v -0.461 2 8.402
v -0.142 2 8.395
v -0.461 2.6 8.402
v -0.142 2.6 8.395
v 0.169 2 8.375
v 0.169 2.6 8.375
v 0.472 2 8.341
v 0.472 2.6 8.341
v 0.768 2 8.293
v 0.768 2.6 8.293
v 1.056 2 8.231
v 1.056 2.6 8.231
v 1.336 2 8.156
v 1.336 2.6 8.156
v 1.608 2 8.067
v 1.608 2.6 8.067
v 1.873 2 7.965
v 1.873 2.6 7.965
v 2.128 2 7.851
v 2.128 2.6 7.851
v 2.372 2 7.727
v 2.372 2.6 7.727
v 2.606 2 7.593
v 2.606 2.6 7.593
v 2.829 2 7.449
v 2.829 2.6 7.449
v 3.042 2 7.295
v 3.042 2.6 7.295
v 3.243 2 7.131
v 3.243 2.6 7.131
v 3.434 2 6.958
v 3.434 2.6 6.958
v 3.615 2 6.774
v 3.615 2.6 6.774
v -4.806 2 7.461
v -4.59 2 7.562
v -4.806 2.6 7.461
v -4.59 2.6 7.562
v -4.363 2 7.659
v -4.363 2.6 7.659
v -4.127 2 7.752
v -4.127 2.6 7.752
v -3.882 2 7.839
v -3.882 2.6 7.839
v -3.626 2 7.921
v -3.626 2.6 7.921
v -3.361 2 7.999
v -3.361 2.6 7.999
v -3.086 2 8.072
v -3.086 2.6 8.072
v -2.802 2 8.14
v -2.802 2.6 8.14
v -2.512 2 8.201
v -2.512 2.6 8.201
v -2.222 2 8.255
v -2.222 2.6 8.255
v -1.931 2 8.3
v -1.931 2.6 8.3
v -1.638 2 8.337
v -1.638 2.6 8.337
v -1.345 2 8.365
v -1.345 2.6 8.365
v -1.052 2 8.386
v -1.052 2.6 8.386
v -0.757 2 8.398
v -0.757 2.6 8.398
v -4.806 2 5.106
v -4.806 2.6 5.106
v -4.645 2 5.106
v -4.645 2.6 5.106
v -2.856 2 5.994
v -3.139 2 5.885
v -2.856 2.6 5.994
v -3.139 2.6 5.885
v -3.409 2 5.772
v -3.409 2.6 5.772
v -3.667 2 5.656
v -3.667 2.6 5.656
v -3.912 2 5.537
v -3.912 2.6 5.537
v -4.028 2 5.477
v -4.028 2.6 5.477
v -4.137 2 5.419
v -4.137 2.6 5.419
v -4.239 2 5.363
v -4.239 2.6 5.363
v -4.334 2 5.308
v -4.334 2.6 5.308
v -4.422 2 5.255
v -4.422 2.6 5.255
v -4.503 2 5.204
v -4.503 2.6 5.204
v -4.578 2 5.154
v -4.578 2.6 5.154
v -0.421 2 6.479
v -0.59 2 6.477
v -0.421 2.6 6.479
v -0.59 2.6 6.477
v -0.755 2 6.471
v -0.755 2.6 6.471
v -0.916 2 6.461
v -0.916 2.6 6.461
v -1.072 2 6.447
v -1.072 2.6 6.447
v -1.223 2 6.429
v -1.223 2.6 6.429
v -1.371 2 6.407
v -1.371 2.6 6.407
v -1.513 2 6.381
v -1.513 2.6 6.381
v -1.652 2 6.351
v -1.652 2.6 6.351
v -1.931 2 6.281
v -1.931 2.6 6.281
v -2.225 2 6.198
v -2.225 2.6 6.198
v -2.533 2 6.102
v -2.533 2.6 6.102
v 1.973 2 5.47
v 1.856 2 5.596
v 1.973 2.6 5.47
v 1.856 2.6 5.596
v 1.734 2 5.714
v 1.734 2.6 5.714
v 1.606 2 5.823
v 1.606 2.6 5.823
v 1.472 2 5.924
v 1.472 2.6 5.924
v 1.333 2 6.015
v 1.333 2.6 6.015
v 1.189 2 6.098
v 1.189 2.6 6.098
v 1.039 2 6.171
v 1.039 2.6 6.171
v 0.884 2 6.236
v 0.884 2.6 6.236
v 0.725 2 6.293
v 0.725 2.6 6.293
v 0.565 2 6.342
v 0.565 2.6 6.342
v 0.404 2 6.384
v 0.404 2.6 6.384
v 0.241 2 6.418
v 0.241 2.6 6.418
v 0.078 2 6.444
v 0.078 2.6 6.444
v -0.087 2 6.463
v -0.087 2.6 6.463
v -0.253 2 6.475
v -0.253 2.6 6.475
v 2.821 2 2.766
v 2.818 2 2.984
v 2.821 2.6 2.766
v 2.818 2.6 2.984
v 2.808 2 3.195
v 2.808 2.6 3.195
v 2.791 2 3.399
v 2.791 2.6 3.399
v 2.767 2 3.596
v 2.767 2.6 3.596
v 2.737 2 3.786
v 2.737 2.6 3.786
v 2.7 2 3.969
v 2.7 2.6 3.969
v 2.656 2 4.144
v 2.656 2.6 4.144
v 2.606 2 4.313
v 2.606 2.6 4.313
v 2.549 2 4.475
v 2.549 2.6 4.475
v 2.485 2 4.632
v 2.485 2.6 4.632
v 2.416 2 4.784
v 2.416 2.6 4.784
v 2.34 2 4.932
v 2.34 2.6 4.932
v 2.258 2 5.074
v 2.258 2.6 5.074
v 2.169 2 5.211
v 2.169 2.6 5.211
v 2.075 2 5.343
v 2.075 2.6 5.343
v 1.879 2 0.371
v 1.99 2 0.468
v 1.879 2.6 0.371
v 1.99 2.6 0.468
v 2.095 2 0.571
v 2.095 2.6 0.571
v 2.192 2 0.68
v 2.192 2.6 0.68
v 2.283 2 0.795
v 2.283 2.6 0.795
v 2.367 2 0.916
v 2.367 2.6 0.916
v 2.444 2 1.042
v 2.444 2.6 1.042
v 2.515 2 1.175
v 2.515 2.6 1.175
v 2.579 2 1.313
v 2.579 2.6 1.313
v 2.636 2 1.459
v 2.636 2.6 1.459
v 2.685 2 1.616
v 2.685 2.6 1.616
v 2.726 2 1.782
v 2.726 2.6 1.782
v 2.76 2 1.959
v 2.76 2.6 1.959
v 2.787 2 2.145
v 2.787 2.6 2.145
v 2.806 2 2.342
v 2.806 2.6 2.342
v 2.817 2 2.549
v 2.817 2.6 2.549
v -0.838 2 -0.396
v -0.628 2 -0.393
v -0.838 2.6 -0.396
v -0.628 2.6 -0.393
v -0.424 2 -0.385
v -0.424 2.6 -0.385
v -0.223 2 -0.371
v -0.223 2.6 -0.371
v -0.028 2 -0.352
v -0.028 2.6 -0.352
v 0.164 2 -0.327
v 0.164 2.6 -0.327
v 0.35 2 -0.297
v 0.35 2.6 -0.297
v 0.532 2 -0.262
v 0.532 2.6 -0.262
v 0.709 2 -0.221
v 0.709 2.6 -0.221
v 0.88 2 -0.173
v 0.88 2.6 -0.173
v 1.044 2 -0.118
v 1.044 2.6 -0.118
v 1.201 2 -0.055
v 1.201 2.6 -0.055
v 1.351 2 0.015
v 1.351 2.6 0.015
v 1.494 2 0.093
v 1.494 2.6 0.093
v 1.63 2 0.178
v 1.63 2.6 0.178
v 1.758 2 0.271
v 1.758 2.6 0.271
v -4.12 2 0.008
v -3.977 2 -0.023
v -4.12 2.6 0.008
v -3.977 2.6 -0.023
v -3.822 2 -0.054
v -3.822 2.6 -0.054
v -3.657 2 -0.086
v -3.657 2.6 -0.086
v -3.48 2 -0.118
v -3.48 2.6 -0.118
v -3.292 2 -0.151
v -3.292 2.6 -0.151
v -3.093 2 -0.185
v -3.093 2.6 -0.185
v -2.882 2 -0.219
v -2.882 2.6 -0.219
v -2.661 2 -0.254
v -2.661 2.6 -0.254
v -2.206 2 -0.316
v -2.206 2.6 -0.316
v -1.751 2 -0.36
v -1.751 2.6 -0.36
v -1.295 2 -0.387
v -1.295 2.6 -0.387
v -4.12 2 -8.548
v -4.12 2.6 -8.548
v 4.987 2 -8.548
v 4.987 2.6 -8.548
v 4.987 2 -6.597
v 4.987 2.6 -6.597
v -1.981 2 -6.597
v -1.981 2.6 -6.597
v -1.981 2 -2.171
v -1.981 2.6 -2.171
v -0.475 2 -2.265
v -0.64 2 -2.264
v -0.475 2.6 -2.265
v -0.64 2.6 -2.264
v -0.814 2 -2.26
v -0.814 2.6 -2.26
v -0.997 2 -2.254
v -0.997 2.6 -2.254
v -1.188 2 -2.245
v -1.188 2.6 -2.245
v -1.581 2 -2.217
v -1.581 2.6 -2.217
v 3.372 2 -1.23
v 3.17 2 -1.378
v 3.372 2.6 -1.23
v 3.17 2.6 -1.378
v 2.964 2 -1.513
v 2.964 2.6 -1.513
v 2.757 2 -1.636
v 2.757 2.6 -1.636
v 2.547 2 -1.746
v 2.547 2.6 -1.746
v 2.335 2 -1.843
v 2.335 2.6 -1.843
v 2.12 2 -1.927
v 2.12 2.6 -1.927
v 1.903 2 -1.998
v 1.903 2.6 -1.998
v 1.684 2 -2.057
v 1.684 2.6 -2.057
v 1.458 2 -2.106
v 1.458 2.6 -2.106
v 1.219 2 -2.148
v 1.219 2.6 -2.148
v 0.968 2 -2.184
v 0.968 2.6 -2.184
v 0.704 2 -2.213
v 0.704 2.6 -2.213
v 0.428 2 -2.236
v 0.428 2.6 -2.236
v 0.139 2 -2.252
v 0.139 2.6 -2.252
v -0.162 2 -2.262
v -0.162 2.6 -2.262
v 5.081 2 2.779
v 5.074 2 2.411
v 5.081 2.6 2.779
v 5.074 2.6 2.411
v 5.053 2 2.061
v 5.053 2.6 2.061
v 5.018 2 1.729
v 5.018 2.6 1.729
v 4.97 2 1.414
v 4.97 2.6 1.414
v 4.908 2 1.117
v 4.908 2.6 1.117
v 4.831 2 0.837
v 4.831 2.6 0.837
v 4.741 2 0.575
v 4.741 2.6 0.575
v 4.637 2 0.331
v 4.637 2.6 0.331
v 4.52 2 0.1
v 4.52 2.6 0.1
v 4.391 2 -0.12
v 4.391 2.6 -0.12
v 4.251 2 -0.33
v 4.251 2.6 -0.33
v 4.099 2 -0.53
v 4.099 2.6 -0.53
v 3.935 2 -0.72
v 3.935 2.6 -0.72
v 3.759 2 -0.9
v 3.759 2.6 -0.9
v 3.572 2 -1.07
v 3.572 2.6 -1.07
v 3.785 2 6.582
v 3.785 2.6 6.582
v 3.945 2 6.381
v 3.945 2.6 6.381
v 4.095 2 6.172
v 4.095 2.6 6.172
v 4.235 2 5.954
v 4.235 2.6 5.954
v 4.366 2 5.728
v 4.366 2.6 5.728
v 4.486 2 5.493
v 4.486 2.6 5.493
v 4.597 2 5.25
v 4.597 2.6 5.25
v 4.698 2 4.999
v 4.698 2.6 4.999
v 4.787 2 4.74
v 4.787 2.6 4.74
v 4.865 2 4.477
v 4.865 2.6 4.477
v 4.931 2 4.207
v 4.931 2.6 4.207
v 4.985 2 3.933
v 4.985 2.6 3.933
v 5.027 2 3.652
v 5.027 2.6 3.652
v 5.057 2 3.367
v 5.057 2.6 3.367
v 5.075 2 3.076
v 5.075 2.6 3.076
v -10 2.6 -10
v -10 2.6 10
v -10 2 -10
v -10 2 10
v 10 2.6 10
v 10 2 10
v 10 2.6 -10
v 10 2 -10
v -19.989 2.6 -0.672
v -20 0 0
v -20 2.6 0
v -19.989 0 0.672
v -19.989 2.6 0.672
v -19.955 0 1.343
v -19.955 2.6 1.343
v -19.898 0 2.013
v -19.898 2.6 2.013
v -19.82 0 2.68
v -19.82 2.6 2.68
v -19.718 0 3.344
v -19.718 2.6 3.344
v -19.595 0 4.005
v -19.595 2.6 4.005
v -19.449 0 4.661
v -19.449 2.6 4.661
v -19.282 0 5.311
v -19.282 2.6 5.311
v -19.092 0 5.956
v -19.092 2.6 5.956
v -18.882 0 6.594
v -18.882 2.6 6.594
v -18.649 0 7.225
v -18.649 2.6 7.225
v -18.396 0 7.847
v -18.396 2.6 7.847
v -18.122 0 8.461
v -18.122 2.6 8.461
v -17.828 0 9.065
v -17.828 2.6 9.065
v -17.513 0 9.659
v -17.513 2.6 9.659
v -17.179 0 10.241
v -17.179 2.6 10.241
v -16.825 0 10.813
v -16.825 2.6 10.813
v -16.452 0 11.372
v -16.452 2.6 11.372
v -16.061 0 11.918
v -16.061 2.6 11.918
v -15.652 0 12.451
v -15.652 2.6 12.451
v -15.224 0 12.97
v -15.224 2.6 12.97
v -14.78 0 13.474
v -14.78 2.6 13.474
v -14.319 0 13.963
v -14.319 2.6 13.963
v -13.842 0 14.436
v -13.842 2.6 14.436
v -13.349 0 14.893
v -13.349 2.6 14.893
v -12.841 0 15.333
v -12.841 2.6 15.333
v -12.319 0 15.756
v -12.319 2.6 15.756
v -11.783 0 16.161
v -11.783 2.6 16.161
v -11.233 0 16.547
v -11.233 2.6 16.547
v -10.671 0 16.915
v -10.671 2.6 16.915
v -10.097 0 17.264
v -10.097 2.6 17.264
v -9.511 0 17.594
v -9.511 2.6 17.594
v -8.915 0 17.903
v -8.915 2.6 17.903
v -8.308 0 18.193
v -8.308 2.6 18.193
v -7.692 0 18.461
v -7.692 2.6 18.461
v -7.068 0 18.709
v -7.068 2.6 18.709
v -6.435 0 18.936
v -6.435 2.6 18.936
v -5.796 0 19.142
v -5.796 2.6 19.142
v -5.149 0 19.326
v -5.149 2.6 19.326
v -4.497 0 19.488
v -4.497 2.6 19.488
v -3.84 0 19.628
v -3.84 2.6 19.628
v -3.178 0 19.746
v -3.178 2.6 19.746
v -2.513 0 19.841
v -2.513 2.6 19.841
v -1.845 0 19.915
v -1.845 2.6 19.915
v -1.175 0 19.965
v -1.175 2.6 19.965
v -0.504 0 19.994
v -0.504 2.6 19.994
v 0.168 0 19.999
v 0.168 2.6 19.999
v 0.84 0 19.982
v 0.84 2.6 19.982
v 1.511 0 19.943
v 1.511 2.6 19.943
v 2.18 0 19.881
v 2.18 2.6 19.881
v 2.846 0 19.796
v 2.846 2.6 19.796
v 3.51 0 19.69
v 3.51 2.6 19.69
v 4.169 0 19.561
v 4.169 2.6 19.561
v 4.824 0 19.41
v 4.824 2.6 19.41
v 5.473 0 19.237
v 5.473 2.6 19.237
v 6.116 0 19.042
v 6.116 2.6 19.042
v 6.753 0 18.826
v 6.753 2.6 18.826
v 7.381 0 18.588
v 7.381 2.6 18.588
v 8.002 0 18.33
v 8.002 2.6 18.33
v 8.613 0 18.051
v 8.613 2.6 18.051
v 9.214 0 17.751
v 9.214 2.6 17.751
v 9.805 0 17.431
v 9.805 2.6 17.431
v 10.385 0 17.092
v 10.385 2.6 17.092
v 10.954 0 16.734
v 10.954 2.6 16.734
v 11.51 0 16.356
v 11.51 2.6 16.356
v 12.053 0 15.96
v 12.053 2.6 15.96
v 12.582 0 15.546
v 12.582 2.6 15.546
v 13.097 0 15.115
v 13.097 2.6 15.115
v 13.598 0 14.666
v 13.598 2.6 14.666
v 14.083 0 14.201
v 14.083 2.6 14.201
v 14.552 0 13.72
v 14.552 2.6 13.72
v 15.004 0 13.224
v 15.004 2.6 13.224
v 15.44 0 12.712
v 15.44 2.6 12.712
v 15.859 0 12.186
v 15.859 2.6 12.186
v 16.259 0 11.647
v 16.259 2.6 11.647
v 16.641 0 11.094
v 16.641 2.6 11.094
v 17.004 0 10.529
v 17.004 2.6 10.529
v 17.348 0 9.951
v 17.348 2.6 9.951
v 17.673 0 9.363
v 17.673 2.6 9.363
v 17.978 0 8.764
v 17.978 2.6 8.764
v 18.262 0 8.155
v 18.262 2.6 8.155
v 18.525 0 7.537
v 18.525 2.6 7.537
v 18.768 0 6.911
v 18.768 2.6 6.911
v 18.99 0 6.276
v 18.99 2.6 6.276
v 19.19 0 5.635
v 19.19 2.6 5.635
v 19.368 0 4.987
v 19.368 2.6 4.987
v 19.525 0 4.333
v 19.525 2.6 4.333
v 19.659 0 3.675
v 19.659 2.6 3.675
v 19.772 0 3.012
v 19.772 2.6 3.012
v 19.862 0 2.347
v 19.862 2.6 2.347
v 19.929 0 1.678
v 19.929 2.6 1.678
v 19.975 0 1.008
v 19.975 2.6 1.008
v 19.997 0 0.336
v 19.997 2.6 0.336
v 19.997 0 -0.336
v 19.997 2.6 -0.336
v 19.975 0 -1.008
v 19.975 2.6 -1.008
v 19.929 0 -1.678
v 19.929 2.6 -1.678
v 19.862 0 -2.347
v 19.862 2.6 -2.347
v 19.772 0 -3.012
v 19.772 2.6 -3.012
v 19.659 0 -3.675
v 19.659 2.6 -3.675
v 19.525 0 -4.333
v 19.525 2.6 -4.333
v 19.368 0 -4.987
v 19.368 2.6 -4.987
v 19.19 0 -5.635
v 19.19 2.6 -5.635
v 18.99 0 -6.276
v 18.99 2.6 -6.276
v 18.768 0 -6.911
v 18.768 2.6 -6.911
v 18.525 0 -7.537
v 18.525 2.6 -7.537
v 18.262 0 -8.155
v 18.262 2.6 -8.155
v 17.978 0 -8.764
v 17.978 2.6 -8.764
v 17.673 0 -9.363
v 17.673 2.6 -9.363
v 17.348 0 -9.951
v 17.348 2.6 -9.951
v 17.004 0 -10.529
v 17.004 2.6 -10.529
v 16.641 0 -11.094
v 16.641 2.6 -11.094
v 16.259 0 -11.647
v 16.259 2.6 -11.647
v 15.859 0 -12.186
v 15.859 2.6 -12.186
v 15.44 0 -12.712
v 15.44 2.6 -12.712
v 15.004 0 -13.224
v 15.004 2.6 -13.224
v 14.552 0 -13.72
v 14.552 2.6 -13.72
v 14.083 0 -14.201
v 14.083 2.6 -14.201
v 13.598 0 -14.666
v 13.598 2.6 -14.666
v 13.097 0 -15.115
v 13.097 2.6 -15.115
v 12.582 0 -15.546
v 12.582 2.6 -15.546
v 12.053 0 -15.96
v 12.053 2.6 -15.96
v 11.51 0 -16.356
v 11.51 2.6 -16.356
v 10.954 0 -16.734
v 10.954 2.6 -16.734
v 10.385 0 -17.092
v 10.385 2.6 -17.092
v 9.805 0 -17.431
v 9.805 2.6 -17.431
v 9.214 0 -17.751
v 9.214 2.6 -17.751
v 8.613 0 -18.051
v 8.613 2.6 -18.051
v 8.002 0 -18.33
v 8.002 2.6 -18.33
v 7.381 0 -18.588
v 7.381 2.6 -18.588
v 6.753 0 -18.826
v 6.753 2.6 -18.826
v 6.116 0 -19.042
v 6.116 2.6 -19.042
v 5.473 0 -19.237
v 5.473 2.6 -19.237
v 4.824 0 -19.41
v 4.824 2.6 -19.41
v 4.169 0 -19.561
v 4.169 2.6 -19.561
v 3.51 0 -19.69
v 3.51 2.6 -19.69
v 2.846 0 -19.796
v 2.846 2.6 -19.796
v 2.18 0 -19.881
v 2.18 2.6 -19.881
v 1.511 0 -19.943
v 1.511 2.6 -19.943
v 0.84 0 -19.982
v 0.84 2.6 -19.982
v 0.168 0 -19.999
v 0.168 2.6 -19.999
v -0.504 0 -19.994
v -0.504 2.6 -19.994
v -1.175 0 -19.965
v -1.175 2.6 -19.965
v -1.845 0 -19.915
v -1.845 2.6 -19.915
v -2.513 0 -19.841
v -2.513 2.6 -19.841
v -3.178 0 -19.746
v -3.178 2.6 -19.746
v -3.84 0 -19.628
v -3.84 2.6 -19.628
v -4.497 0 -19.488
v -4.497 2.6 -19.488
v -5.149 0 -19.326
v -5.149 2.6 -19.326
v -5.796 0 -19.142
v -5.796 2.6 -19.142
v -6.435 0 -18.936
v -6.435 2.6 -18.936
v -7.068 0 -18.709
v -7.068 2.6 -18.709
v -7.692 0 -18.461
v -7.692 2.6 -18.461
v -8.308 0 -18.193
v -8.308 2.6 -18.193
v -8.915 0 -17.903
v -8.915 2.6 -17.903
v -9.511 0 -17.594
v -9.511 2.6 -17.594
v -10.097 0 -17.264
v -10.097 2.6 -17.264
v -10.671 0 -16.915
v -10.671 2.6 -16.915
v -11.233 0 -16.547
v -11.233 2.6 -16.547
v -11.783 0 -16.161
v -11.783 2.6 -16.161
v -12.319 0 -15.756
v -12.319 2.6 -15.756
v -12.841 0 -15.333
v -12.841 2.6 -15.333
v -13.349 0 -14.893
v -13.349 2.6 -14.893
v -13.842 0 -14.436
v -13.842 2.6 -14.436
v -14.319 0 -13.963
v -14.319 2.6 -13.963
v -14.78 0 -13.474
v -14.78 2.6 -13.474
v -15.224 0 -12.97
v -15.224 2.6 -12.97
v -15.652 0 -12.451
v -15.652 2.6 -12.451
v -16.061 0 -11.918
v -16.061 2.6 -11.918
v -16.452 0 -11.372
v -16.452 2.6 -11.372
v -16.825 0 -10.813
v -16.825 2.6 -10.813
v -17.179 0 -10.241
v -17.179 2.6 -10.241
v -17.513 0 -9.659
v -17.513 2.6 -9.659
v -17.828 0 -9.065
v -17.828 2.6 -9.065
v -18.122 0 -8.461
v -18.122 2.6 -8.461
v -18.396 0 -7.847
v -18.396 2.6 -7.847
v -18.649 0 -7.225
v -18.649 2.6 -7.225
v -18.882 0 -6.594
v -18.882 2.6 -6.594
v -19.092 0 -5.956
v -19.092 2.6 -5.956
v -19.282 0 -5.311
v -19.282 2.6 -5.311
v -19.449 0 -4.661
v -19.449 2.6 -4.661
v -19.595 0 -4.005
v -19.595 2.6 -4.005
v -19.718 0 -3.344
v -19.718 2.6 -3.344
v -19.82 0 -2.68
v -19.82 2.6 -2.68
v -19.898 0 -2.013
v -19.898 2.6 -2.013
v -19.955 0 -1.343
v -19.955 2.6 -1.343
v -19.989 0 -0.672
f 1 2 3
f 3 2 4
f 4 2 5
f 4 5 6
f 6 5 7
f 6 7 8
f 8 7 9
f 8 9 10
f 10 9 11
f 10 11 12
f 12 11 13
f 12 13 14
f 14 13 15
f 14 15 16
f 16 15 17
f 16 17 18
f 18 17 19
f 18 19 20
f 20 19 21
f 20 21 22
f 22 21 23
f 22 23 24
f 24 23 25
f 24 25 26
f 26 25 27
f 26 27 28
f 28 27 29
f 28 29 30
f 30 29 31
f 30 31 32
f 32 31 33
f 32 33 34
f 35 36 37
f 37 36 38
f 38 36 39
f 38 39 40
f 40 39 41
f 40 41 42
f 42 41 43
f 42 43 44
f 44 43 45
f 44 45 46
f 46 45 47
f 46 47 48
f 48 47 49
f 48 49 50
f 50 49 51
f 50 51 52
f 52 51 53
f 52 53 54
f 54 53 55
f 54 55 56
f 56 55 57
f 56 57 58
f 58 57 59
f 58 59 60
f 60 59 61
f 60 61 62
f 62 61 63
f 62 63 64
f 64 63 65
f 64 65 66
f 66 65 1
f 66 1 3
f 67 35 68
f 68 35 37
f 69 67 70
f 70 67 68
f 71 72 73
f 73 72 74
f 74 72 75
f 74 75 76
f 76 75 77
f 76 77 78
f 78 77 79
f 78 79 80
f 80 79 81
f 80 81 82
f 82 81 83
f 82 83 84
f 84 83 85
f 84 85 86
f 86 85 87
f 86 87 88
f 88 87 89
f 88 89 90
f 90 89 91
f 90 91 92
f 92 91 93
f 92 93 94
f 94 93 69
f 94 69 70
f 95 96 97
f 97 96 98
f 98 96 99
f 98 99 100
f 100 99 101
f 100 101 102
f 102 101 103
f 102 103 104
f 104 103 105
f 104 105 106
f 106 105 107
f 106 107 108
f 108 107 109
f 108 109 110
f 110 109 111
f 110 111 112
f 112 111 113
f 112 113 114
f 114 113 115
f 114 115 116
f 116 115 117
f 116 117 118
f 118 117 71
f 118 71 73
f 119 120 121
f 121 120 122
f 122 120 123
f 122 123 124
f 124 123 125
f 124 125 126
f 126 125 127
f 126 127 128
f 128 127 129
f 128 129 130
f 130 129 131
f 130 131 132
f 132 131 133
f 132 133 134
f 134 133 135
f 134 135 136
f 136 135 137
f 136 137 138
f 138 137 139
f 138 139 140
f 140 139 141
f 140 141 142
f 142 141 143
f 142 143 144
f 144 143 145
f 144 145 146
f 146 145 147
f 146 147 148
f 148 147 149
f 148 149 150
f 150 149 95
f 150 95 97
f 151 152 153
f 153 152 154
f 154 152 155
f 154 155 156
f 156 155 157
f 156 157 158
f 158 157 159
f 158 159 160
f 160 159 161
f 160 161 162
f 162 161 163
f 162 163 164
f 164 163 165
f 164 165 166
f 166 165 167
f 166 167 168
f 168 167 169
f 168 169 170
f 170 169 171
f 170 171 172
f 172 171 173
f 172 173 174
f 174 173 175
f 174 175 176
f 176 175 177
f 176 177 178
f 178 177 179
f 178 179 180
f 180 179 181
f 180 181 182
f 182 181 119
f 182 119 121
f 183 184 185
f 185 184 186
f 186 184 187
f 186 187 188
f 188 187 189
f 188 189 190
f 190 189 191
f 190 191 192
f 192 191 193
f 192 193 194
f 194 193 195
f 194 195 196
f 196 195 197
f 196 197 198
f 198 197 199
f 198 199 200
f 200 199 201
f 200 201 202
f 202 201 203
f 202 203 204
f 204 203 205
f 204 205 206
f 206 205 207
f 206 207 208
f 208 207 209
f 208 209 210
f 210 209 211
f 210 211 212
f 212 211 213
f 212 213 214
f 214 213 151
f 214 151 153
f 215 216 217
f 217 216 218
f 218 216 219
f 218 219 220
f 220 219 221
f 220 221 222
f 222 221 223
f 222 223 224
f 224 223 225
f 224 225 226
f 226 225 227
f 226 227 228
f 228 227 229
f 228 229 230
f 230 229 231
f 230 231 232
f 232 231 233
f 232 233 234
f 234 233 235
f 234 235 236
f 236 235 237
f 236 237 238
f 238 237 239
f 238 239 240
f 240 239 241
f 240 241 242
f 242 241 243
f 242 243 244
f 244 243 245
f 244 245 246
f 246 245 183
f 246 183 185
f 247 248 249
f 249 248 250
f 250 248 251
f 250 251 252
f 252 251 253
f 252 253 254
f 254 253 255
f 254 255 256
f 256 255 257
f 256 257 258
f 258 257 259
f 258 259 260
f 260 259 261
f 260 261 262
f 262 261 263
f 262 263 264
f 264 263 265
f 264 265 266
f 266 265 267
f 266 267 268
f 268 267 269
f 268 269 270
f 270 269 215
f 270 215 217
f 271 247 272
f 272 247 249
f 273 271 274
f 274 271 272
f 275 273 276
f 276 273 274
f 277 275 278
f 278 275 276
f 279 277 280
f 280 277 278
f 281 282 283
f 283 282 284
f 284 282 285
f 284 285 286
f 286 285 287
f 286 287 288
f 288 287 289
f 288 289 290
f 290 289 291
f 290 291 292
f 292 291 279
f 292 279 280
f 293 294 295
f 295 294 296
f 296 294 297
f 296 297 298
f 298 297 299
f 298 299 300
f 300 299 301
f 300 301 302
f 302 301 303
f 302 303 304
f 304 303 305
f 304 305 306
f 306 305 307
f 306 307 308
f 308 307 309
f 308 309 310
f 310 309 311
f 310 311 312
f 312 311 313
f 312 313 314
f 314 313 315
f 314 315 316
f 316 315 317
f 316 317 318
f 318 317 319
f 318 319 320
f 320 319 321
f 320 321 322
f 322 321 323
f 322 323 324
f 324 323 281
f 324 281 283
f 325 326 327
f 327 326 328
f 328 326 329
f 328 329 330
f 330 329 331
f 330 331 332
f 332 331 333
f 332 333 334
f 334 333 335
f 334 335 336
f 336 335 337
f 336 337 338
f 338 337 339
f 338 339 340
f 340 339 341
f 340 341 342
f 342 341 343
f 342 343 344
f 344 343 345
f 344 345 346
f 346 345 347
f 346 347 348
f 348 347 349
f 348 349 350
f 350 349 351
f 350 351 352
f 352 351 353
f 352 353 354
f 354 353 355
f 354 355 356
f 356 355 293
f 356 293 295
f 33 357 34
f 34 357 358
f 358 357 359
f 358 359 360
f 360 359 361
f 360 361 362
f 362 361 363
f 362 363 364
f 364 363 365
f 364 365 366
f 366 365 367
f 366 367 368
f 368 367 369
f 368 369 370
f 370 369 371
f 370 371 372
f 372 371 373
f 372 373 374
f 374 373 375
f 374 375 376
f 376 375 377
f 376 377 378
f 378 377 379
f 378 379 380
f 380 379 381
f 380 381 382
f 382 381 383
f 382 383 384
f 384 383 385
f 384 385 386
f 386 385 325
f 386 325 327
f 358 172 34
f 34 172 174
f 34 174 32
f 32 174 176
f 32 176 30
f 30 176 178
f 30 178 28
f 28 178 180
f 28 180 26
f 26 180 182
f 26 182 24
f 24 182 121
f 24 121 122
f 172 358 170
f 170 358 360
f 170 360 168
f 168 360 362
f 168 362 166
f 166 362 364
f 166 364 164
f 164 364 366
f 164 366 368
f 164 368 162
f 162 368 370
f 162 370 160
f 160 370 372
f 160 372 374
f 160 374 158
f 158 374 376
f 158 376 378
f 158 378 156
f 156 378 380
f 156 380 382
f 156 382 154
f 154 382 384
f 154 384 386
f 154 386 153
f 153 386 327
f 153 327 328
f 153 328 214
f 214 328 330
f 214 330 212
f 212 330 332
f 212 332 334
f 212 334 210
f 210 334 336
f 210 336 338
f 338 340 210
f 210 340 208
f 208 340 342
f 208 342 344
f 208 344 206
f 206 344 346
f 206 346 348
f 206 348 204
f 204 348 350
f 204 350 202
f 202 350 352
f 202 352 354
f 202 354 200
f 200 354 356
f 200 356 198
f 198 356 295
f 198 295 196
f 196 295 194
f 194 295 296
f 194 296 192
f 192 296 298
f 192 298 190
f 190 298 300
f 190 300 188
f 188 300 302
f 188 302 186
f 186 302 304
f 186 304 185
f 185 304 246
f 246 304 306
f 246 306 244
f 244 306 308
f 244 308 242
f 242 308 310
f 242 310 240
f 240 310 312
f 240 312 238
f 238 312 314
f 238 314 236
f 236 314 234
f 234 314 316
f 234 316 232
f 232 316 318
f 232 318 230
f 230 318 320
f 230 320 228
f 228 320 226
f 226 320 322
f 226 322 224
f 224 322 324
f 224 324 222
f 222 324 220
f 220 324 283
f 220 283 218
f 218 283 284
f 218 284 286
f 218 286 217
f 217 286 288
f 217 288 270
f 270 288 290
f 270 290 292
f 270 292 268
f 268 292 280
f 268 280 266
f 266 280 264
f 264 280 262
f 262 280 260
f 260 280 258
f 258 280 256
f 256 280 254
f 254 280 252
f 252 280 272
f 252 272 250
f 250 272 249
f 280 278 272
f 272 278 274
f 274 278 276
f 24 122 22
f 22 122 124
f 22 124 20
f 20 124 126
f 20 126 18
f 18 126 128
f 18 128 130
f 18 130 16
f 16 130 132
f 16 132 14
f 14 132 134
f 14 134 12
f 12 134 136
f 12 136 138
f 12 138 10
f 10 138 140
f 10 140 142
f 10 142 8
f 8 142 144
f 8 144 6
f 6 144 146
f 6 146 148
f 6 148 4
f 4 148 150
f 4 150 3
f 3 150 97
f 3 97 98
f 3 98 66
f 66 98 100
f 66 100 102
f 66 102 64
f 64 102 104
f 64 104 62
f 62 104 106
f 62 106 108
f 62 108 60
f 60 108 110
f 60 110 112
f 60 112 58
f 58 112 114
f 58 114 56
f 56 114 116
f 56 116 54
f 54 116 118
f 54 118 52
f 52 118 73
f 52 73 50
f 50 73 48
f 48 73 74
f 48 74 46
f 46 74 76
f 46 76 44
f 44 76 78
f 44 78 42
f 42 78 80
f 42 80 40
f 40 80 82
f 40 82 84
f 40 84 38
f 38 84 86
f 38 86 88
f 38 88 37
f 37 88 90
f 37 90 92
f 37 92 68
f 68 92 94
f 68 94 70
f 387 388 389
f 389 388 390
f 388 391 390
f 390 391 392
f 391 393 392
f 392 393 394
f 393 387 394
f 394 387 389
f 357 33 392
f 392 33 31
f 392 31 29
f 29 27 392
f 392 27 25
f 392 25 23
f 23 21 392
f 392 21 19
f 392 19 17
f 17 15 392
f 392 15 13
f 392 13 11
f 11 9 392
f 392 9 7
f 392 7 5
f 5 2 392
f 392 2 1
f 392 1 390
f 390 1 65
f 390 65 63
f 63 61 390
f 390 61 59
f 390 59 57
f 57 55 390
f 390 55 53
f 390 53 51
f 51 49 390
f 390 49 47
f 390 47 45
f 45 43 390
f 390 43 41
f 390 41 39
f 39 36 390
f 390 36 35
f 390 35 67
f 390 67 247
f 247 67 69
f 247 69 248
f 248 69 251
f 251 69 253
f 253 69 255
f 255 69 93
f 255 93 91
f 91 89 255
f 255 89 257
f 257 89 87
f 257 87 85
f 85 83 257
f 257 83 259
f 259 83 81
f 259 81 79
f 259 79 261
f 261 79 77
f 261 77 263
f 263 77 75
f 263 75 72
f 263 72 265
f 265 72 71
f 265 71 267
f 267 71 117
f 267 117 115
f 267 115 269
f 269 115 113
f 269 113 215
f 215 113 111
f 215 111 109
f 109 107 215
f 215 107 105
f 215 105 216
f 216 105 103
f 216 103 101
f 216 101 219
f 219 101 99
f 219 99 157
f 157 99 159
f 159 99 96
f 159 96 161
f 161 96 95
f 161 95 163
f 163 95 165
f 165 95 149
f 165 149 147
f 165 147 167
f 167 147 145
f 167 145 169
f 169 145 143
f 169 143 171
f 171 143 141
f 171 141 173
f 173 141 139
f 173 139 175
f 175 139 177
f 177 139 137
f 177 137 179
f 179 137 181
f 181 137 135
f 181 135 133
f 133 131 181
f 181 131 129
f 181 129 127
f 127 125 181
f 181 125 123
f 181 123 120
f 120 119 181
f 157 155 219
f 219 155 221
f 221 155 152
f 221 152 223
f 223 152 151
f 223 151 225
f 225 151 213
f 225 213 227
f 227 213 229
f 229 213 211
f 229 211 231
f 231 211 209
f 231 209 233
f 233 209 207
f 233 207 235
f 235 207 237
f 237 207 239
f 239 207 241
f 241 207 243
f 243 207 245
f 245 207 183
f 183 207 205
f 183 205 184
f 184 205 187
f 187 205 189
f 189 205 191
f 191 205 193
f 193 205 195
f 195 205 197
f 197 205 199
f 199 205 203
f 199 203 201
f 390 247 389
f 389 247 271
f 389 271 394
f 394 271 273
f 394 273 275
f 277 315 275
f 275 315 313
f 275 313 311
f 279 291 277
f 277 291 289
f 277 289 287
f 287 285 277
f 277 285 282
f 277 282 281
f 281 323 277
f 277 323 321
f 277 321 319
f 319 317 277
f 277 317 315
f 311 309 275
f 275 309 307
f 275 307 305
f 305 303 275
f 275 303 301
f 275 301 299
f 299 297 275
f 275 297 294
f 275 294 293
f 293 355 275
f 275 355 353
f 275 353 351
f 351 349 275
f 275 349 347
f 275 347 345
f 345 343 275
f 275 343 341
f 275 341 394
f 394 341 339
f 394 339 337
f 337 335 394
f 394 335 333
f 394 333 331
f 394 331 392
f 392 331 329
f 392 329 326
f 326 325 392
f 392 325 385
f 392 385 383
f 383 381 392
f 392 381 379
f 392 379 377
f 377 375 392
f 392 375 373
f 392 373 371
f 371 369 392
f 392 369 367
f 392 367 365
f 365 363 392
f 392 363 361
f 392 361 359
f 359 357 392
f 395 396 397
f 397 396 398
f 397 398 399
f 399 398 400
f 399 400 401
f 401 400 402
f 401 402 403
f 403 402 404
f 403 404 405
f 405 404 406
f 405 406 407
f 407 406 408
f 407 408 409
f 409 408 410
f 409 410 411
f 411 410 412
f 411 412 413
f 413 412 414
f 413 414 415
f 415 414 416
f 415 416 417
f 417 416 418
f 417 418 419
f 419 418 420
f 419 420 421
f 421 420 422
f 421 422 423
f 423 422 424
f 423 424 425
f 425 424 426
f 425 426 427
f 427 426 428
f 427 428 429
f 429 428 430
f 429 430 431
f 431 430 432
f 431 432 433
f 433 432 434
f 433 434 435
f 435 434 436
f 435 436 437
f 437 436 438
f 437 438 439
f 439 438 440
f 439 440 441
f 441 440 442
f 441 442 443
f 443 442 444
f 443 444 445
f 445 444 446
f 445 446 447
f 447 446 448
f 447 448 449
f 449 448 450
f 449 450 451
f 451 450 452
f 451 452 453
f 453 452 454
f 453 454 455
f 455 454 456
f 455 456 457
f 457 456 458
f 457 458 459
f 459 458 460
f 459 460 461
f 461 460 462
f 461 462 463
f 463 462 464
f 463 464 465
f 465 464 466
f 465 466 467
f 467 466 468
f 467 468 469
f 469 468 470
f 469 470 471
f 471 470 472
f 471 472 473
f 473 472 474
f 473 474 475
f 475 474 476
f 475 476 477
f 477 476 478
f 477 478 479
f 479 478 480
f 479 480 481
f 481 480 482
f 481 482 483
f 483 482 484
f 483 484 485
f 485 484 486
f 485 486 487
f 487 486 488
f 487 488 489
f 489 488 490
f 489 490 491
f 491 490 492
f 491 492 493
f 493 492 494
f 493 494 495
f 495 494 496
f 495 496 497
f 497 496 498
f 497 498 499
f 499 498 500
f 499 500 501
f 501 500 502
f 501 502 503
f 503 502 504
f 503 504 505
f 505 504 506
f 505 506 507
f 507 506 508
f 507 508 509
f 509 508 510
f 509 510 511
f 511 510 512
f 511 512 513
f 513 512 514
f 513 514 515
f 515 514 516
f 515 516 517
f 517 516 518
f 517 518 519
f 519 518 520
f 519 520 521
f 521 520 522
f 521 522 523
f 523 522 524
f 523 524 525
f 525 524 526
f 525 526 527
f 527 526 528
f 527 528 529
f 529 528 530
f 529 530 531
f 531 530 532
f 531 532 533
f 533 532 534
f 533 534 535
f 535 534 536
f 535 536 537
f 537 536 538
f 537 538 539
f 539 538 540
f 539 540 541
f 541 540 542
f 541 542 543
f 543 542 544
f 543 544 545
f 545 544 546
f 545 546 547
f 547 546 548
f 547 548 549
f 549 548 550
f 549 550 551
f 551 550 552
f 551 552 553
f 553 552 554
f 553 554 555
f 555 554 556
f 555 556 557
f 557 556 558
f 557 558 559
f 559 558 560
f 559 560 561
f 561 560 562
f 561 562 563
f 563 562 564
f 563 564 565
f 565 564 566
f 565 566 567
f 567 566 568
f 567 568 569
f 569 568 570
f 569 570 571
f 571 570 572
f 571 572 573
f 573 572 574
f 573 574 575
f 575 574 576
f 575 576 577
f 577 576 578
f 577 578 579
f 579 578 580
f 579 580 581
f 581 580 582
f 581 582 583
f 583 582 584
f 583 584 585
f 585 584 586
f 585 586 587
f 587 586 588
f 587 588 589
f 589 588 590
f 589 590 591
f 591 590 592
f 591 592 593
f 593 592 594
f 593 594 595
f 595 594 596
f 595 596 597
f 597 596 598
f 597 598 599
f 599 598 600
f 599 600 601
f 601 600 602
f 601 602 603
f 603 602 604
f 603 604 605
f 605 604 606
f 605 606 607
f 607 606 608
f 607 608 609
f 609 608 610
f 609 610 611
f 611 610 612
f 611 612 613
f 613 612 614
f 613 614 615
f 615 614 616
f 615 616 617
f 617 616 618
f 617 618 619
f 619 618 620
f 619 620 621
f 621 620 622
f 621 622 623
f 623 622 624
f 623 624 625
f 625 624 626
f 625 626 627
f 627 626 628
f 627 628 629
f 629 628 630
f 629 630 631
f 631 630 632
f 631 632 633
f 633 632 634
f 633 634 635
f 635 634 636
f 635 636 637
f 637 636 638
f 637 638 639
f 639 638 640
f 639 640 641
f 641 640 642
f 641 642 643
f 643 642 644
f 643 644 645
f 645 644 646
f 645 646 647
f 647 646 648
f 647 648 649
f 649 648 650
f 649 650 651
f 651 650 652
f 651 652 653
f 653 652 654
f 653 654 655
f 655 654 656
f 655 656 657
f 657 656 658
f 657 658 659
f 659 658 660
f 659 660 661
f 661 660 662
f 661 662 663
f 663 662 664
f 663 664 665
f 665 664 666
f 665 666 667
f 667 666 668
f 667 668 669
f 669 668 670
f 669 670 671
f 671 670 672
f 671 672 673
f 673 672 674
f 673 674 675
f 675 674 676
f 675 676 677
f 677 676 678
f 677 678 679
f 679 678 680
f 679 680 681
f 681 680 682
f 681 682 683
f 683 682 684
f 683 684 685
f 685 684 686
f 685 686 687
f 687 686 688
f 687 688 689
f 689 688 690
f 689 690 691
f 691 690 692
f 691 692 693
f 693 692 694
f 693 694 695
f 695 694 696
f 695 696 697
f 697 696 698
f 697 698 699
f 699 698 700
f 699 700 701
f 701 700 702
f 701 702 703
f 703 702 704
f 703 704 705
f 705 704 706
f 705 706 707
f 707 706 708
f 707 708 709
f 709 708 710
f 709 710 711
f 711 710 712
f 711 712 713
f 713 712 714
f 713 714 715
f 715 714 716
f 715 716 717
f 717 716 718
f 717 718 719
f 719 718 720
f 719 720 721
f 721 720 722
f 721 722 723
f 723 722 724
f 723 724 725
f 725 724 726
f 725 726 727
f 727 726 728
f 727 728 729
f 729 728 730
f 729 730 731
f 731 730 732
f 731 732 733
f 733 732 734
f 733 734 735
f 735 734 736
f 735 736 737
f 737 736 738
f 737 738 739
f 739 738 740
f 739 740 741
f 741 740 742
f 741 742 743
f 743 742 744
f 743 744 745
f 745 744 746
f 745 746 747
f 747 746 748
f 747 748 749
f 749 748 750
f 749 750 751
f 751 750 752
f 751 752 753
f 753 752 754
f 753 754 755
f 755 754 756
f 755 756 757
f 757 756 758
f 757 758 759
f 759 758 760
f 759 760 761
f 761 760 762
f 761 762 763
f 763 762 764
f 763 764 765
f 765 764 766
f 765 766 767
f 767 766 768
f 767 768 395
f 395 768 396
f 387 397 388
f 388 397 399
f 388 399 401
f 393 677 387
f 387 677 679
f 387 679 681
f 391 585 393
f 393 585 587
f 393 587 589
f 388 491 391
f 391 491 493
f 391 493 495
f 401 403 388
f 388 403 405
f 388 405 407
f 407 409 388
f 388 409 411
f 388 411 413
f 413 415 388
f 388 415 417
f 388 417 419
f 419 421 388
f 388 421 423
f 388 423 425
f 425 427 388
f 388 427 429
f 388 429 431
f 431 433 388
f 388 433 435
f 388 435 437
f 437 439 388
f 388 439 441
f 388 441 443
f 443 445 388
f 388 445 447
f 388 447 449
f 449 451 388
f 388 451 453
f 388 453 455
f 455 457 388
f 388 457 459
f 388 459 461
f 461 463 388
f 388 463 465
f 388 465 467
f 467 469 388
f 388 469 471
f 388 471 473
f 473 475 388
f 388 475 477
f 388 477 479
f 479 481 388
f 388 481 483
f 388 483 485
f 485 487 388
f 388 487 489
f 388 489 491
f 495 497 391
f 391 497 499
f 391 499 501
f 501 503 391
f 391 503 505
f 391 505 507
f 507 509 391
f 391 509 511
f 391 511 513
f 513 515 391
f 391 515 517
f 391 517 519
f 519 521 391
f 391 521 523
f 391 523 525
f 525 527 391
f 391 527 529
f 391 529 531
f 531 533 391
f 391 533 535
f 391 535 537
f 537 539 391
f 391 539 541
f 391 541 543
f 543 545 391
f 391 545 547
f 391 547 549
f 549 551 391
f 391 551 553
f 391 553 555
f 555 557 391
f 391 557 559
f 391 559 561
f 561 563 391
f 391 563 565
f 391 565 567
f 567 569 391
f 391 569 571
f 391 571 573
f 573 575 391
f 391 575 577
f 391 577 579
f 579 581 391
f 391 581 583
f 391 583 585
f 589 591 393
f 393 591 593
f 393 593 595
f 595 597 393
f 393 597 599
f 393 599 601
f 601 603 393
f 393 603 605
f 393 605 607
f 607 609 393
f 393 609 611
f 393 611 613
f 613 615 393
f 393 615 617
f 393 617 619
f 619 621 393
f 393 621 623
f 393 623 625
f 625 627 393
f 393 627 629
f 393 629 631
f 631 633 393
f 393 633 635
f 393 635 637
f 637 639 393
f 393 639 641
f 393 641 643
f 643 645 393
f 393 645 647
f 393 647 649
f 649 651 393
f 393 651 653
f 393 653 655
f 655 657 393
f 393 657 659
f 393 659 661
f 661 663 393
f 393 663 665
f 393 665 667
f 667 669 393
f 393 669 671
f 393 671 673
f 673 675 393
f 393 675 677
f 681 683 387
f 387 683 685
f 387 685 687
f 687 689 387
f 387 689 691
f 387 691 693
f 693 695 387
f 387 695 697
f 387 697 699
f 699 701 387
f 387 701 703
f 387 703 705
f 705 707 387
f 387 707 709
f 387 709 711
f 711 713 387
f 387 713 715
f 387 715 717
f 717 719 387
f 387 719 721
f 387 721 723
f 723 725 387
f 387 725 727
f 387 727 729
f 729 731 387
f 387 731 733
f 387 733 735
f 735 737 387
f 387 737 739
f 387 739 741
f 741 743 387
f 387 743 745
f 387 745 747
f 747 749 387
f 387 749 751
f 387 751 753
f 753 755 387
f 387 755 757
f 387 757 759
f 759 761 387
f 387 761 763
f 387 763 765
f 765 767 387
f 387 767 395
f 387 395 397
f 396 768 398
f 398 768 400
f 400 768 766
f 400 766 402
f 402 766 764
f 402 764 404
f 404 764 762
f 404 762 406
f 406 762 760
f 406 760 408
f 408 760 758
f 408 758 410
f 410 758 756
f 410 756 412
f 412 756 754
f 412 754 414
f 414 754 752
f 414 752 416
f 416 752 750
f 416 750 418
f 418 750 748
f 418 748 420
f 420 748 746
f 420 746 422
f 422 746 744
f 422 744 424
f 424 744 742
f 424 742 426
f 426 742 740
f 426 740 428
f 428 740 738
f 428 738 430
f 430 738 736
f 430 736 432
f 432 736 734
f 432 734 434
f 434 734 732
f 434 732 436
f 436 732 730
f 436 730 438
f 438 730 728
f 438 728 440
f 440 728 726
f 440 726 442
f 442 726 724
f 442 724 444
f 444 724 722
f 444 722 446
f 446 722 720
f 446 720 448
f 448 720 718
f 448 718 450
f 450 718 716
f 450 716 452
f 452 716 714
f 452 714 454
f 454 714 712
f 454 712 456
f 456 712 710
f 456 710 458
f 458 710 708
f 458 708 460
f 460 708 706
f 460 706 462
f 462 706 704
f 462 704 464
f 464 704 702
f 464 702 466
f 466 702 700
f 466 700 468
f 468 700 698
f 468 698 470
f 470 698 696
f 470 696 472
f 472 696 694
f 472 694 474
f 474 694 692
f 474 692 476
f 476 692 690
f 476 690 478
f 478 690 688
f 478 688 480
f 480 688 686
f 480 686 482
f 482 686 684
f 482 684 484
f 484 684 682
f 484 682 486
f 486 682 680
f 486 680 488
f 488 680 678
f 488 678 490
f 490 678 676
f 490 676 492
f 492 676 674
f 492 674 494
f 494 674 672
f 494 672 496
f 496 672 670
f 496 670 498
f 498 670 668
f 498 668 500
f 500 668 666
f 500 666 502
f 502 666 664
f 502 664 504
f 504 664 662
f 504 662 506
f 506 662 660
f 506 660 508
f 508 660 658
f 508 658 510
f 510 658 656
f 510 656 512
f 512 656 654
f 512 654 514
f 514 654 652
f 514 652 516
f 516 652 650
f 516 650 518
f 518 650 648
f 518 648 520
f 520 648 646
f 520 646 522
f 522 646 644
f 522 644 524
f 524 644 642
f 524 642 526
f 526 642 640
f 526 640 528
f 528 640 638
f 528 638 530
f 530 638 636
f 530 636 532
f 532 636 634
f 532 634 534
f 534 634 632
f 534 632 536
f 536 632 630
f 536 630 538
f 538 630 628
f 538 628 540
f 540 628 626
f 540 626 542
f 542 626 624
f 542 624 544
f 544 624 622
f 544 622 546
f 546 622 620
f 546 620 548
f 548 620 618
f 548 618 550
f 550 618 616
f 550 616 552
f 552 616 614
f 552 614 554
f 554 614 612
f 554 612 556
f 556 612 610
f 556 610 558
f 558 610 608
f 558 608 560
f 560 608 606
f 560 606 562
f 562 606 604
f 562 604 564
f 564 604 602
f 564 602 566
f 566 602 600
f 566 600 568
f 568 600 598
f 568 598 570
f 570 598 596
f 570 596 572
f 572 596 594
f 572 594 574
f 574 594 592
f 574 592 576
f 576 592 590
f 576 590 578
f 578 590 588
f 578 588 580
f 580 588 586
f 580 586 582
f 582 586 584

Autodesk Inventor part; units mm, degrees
ref_plane "YZ Plane" through (0, 0, 0) normal (1, 0, 0) x (0, 1, 0)
ref_plane "XZ Plane" through (0, 0, 0) normal (0, 1, 0) x (-1, 0, 0)
ref_plane "XY Plane" through (0, 0, 0) normal (0, 0, 1) x (1, 0, 0)
sketch "Sketch1" plane through (0, 0, 0) normal (0, 1, 0) x (-1, 0, 0)
  circle A0 centre (0, 0) radius 20
  dimension "d0" = 40
extrude "Extrusion1" add sketch "Sketch1" along normal blind 2.6
sketch "Sketch2" plane through (0, 2.6, 0) normal (0, 1, 0) x (1, 0, 0)
  line L0 (10, -10) -> (-10, -10)
  line L1 (-10, -10) -> (-10, 10)
  line L2 (-10, 10) -> (10, 10)
  line L3 (10, 10) -> (10, -10)
  line L4 (10, -10) -> (-10, 10) construction
  line L5 (-10, -10) -> (10, 10) construction
  point P0 (0, 0)
  dimension "d3" = 20
  dimension "d4" = 20
extrude "Extrusion2" cut sketch "Sketch2" against normal blind 0.6
sketch "Sketch4" plane through (0, 2, 0) normal (0, 1, 0) x (1, 0, 0)
  line L0 (-6.192, 8.5476) -> (6.2647, 8.5476) construction
  line L1 (6.2647, 8.5476) -> (6.2647, -8.4022) construction
  line L2 (6.2647, -8.4022) -> (-6.192, -8.4022) construction
  line L3 (-6.192, -8.4022) -> (-6.192, 8.5476) construction
  spline S0 degree 2 poles (5.0809, -2.7792) (5.0809, -3.9764) (4.3141, -6.0211) (3.6146, -6.7745) knots 0 0 0 1 2 2 2
  spline S1 degree 2 poles (3.6146, -6.7745) (2.9151, -7.5278) (0.83, -8.4022) (-0.4614, -8.4022) knots 0 0 0 1 2 2 2
  spline S2 degree 2 poles (-0.4614, -8.4022) (-1.6452, -8.4022) (-3.9589, -7.8775) (-4.8064, -7.4605) knots 0 0 0 1 2 2 2
  line L4 (-4.8064, -7.4605) -> (-4.8064, -5.1064)
  line L5 (-4.8064, -5.1064) -> (-4.645, -5.1064)
  spline S3 degree 2 poles (-4.645, -5.1064) (-4.3894, -5.2947) (-3.4343, -5.779) (-2.8559, -5.9942) knots 0 0 0 1 2 2 2
  spline S4 degree 2 poles (-2.8559, -5.9942) (-2.1967, -6.2229) (-1.1071, -6.4785) (-0.421, -6.4785) knots 0 0 0 1 2 2 2
  spline S5 degree 2 poles (-0.421, -6.4785) (0.2516, -6.4785) (1.5161, -5.9942) (1.9735, -5.4696) knots 0 0 0 1 2 2 2
  spline S6 degree 2 poles (1.9735, -5.4696) (2.3905, -4.9719) (2.821, -3.6536) (2.821, -2.7657) knots 0 0 0 1 2 2 2
  spline S7 degree 2 poles (2.821, -2.7657) (2.821, -1.8779) (2.3367, -0.7479) (1.8793, -0.3712) knots 0 0 0 1 2 2 2
  spline S8 degree 2 poles (1.8793, -0.3712) (1.4085, 0.0458) (0.0094, 0.3956) (-0.838, 0.3956) knots 0 0 0 1 2 2 2
  spline S9 degree 2 poles (-0.838, 0.3956) (-1.7528, 0.3956) (-3.5688, 0.1131) (-4.1204, -0.008) knots 0 0 0 1 2 2 2
  line L6 (-4.1204, -0.008) -> (-4.1204, 8.5476)
  line L7 (-4.1204, 8.5476) -> (4.9868, 8.5476)
  line L8 (4.9868, 8.5476) -> (4.9868, 6.597)
  line L9 (4.9868, 6.597) -> (-1.9815, 6.597)
  line L10 (-1.9815, 6.597) -> (-1.9815, 2.1712)
  spline S10 degree 2 poles (-1.9815, 2.1712) (-1.5779, 2.2251) (-0.7977, 2.2654) (-0.4748, 2.2654) knots 0 0 0 1 2 2 2
  spline S11 degree 2 poles (-0.4748, 2.2654) (0.8031, 2.2654) (2.5654, 1.8484) (3.3725, 1.2296) knots 0 0 0 1 2 2 2
  spline S12 degree 2 poles (3.3725, 1.2296) (4.1931, 0.6108) (5.0809, -1.2725) (5.0809, -2.7792) knots 0 0 0 1 2 2 2
extrude "Extrusion4" add sketch "Sketch4" along normal blind 0.6
properties part number "TopMarker1"
